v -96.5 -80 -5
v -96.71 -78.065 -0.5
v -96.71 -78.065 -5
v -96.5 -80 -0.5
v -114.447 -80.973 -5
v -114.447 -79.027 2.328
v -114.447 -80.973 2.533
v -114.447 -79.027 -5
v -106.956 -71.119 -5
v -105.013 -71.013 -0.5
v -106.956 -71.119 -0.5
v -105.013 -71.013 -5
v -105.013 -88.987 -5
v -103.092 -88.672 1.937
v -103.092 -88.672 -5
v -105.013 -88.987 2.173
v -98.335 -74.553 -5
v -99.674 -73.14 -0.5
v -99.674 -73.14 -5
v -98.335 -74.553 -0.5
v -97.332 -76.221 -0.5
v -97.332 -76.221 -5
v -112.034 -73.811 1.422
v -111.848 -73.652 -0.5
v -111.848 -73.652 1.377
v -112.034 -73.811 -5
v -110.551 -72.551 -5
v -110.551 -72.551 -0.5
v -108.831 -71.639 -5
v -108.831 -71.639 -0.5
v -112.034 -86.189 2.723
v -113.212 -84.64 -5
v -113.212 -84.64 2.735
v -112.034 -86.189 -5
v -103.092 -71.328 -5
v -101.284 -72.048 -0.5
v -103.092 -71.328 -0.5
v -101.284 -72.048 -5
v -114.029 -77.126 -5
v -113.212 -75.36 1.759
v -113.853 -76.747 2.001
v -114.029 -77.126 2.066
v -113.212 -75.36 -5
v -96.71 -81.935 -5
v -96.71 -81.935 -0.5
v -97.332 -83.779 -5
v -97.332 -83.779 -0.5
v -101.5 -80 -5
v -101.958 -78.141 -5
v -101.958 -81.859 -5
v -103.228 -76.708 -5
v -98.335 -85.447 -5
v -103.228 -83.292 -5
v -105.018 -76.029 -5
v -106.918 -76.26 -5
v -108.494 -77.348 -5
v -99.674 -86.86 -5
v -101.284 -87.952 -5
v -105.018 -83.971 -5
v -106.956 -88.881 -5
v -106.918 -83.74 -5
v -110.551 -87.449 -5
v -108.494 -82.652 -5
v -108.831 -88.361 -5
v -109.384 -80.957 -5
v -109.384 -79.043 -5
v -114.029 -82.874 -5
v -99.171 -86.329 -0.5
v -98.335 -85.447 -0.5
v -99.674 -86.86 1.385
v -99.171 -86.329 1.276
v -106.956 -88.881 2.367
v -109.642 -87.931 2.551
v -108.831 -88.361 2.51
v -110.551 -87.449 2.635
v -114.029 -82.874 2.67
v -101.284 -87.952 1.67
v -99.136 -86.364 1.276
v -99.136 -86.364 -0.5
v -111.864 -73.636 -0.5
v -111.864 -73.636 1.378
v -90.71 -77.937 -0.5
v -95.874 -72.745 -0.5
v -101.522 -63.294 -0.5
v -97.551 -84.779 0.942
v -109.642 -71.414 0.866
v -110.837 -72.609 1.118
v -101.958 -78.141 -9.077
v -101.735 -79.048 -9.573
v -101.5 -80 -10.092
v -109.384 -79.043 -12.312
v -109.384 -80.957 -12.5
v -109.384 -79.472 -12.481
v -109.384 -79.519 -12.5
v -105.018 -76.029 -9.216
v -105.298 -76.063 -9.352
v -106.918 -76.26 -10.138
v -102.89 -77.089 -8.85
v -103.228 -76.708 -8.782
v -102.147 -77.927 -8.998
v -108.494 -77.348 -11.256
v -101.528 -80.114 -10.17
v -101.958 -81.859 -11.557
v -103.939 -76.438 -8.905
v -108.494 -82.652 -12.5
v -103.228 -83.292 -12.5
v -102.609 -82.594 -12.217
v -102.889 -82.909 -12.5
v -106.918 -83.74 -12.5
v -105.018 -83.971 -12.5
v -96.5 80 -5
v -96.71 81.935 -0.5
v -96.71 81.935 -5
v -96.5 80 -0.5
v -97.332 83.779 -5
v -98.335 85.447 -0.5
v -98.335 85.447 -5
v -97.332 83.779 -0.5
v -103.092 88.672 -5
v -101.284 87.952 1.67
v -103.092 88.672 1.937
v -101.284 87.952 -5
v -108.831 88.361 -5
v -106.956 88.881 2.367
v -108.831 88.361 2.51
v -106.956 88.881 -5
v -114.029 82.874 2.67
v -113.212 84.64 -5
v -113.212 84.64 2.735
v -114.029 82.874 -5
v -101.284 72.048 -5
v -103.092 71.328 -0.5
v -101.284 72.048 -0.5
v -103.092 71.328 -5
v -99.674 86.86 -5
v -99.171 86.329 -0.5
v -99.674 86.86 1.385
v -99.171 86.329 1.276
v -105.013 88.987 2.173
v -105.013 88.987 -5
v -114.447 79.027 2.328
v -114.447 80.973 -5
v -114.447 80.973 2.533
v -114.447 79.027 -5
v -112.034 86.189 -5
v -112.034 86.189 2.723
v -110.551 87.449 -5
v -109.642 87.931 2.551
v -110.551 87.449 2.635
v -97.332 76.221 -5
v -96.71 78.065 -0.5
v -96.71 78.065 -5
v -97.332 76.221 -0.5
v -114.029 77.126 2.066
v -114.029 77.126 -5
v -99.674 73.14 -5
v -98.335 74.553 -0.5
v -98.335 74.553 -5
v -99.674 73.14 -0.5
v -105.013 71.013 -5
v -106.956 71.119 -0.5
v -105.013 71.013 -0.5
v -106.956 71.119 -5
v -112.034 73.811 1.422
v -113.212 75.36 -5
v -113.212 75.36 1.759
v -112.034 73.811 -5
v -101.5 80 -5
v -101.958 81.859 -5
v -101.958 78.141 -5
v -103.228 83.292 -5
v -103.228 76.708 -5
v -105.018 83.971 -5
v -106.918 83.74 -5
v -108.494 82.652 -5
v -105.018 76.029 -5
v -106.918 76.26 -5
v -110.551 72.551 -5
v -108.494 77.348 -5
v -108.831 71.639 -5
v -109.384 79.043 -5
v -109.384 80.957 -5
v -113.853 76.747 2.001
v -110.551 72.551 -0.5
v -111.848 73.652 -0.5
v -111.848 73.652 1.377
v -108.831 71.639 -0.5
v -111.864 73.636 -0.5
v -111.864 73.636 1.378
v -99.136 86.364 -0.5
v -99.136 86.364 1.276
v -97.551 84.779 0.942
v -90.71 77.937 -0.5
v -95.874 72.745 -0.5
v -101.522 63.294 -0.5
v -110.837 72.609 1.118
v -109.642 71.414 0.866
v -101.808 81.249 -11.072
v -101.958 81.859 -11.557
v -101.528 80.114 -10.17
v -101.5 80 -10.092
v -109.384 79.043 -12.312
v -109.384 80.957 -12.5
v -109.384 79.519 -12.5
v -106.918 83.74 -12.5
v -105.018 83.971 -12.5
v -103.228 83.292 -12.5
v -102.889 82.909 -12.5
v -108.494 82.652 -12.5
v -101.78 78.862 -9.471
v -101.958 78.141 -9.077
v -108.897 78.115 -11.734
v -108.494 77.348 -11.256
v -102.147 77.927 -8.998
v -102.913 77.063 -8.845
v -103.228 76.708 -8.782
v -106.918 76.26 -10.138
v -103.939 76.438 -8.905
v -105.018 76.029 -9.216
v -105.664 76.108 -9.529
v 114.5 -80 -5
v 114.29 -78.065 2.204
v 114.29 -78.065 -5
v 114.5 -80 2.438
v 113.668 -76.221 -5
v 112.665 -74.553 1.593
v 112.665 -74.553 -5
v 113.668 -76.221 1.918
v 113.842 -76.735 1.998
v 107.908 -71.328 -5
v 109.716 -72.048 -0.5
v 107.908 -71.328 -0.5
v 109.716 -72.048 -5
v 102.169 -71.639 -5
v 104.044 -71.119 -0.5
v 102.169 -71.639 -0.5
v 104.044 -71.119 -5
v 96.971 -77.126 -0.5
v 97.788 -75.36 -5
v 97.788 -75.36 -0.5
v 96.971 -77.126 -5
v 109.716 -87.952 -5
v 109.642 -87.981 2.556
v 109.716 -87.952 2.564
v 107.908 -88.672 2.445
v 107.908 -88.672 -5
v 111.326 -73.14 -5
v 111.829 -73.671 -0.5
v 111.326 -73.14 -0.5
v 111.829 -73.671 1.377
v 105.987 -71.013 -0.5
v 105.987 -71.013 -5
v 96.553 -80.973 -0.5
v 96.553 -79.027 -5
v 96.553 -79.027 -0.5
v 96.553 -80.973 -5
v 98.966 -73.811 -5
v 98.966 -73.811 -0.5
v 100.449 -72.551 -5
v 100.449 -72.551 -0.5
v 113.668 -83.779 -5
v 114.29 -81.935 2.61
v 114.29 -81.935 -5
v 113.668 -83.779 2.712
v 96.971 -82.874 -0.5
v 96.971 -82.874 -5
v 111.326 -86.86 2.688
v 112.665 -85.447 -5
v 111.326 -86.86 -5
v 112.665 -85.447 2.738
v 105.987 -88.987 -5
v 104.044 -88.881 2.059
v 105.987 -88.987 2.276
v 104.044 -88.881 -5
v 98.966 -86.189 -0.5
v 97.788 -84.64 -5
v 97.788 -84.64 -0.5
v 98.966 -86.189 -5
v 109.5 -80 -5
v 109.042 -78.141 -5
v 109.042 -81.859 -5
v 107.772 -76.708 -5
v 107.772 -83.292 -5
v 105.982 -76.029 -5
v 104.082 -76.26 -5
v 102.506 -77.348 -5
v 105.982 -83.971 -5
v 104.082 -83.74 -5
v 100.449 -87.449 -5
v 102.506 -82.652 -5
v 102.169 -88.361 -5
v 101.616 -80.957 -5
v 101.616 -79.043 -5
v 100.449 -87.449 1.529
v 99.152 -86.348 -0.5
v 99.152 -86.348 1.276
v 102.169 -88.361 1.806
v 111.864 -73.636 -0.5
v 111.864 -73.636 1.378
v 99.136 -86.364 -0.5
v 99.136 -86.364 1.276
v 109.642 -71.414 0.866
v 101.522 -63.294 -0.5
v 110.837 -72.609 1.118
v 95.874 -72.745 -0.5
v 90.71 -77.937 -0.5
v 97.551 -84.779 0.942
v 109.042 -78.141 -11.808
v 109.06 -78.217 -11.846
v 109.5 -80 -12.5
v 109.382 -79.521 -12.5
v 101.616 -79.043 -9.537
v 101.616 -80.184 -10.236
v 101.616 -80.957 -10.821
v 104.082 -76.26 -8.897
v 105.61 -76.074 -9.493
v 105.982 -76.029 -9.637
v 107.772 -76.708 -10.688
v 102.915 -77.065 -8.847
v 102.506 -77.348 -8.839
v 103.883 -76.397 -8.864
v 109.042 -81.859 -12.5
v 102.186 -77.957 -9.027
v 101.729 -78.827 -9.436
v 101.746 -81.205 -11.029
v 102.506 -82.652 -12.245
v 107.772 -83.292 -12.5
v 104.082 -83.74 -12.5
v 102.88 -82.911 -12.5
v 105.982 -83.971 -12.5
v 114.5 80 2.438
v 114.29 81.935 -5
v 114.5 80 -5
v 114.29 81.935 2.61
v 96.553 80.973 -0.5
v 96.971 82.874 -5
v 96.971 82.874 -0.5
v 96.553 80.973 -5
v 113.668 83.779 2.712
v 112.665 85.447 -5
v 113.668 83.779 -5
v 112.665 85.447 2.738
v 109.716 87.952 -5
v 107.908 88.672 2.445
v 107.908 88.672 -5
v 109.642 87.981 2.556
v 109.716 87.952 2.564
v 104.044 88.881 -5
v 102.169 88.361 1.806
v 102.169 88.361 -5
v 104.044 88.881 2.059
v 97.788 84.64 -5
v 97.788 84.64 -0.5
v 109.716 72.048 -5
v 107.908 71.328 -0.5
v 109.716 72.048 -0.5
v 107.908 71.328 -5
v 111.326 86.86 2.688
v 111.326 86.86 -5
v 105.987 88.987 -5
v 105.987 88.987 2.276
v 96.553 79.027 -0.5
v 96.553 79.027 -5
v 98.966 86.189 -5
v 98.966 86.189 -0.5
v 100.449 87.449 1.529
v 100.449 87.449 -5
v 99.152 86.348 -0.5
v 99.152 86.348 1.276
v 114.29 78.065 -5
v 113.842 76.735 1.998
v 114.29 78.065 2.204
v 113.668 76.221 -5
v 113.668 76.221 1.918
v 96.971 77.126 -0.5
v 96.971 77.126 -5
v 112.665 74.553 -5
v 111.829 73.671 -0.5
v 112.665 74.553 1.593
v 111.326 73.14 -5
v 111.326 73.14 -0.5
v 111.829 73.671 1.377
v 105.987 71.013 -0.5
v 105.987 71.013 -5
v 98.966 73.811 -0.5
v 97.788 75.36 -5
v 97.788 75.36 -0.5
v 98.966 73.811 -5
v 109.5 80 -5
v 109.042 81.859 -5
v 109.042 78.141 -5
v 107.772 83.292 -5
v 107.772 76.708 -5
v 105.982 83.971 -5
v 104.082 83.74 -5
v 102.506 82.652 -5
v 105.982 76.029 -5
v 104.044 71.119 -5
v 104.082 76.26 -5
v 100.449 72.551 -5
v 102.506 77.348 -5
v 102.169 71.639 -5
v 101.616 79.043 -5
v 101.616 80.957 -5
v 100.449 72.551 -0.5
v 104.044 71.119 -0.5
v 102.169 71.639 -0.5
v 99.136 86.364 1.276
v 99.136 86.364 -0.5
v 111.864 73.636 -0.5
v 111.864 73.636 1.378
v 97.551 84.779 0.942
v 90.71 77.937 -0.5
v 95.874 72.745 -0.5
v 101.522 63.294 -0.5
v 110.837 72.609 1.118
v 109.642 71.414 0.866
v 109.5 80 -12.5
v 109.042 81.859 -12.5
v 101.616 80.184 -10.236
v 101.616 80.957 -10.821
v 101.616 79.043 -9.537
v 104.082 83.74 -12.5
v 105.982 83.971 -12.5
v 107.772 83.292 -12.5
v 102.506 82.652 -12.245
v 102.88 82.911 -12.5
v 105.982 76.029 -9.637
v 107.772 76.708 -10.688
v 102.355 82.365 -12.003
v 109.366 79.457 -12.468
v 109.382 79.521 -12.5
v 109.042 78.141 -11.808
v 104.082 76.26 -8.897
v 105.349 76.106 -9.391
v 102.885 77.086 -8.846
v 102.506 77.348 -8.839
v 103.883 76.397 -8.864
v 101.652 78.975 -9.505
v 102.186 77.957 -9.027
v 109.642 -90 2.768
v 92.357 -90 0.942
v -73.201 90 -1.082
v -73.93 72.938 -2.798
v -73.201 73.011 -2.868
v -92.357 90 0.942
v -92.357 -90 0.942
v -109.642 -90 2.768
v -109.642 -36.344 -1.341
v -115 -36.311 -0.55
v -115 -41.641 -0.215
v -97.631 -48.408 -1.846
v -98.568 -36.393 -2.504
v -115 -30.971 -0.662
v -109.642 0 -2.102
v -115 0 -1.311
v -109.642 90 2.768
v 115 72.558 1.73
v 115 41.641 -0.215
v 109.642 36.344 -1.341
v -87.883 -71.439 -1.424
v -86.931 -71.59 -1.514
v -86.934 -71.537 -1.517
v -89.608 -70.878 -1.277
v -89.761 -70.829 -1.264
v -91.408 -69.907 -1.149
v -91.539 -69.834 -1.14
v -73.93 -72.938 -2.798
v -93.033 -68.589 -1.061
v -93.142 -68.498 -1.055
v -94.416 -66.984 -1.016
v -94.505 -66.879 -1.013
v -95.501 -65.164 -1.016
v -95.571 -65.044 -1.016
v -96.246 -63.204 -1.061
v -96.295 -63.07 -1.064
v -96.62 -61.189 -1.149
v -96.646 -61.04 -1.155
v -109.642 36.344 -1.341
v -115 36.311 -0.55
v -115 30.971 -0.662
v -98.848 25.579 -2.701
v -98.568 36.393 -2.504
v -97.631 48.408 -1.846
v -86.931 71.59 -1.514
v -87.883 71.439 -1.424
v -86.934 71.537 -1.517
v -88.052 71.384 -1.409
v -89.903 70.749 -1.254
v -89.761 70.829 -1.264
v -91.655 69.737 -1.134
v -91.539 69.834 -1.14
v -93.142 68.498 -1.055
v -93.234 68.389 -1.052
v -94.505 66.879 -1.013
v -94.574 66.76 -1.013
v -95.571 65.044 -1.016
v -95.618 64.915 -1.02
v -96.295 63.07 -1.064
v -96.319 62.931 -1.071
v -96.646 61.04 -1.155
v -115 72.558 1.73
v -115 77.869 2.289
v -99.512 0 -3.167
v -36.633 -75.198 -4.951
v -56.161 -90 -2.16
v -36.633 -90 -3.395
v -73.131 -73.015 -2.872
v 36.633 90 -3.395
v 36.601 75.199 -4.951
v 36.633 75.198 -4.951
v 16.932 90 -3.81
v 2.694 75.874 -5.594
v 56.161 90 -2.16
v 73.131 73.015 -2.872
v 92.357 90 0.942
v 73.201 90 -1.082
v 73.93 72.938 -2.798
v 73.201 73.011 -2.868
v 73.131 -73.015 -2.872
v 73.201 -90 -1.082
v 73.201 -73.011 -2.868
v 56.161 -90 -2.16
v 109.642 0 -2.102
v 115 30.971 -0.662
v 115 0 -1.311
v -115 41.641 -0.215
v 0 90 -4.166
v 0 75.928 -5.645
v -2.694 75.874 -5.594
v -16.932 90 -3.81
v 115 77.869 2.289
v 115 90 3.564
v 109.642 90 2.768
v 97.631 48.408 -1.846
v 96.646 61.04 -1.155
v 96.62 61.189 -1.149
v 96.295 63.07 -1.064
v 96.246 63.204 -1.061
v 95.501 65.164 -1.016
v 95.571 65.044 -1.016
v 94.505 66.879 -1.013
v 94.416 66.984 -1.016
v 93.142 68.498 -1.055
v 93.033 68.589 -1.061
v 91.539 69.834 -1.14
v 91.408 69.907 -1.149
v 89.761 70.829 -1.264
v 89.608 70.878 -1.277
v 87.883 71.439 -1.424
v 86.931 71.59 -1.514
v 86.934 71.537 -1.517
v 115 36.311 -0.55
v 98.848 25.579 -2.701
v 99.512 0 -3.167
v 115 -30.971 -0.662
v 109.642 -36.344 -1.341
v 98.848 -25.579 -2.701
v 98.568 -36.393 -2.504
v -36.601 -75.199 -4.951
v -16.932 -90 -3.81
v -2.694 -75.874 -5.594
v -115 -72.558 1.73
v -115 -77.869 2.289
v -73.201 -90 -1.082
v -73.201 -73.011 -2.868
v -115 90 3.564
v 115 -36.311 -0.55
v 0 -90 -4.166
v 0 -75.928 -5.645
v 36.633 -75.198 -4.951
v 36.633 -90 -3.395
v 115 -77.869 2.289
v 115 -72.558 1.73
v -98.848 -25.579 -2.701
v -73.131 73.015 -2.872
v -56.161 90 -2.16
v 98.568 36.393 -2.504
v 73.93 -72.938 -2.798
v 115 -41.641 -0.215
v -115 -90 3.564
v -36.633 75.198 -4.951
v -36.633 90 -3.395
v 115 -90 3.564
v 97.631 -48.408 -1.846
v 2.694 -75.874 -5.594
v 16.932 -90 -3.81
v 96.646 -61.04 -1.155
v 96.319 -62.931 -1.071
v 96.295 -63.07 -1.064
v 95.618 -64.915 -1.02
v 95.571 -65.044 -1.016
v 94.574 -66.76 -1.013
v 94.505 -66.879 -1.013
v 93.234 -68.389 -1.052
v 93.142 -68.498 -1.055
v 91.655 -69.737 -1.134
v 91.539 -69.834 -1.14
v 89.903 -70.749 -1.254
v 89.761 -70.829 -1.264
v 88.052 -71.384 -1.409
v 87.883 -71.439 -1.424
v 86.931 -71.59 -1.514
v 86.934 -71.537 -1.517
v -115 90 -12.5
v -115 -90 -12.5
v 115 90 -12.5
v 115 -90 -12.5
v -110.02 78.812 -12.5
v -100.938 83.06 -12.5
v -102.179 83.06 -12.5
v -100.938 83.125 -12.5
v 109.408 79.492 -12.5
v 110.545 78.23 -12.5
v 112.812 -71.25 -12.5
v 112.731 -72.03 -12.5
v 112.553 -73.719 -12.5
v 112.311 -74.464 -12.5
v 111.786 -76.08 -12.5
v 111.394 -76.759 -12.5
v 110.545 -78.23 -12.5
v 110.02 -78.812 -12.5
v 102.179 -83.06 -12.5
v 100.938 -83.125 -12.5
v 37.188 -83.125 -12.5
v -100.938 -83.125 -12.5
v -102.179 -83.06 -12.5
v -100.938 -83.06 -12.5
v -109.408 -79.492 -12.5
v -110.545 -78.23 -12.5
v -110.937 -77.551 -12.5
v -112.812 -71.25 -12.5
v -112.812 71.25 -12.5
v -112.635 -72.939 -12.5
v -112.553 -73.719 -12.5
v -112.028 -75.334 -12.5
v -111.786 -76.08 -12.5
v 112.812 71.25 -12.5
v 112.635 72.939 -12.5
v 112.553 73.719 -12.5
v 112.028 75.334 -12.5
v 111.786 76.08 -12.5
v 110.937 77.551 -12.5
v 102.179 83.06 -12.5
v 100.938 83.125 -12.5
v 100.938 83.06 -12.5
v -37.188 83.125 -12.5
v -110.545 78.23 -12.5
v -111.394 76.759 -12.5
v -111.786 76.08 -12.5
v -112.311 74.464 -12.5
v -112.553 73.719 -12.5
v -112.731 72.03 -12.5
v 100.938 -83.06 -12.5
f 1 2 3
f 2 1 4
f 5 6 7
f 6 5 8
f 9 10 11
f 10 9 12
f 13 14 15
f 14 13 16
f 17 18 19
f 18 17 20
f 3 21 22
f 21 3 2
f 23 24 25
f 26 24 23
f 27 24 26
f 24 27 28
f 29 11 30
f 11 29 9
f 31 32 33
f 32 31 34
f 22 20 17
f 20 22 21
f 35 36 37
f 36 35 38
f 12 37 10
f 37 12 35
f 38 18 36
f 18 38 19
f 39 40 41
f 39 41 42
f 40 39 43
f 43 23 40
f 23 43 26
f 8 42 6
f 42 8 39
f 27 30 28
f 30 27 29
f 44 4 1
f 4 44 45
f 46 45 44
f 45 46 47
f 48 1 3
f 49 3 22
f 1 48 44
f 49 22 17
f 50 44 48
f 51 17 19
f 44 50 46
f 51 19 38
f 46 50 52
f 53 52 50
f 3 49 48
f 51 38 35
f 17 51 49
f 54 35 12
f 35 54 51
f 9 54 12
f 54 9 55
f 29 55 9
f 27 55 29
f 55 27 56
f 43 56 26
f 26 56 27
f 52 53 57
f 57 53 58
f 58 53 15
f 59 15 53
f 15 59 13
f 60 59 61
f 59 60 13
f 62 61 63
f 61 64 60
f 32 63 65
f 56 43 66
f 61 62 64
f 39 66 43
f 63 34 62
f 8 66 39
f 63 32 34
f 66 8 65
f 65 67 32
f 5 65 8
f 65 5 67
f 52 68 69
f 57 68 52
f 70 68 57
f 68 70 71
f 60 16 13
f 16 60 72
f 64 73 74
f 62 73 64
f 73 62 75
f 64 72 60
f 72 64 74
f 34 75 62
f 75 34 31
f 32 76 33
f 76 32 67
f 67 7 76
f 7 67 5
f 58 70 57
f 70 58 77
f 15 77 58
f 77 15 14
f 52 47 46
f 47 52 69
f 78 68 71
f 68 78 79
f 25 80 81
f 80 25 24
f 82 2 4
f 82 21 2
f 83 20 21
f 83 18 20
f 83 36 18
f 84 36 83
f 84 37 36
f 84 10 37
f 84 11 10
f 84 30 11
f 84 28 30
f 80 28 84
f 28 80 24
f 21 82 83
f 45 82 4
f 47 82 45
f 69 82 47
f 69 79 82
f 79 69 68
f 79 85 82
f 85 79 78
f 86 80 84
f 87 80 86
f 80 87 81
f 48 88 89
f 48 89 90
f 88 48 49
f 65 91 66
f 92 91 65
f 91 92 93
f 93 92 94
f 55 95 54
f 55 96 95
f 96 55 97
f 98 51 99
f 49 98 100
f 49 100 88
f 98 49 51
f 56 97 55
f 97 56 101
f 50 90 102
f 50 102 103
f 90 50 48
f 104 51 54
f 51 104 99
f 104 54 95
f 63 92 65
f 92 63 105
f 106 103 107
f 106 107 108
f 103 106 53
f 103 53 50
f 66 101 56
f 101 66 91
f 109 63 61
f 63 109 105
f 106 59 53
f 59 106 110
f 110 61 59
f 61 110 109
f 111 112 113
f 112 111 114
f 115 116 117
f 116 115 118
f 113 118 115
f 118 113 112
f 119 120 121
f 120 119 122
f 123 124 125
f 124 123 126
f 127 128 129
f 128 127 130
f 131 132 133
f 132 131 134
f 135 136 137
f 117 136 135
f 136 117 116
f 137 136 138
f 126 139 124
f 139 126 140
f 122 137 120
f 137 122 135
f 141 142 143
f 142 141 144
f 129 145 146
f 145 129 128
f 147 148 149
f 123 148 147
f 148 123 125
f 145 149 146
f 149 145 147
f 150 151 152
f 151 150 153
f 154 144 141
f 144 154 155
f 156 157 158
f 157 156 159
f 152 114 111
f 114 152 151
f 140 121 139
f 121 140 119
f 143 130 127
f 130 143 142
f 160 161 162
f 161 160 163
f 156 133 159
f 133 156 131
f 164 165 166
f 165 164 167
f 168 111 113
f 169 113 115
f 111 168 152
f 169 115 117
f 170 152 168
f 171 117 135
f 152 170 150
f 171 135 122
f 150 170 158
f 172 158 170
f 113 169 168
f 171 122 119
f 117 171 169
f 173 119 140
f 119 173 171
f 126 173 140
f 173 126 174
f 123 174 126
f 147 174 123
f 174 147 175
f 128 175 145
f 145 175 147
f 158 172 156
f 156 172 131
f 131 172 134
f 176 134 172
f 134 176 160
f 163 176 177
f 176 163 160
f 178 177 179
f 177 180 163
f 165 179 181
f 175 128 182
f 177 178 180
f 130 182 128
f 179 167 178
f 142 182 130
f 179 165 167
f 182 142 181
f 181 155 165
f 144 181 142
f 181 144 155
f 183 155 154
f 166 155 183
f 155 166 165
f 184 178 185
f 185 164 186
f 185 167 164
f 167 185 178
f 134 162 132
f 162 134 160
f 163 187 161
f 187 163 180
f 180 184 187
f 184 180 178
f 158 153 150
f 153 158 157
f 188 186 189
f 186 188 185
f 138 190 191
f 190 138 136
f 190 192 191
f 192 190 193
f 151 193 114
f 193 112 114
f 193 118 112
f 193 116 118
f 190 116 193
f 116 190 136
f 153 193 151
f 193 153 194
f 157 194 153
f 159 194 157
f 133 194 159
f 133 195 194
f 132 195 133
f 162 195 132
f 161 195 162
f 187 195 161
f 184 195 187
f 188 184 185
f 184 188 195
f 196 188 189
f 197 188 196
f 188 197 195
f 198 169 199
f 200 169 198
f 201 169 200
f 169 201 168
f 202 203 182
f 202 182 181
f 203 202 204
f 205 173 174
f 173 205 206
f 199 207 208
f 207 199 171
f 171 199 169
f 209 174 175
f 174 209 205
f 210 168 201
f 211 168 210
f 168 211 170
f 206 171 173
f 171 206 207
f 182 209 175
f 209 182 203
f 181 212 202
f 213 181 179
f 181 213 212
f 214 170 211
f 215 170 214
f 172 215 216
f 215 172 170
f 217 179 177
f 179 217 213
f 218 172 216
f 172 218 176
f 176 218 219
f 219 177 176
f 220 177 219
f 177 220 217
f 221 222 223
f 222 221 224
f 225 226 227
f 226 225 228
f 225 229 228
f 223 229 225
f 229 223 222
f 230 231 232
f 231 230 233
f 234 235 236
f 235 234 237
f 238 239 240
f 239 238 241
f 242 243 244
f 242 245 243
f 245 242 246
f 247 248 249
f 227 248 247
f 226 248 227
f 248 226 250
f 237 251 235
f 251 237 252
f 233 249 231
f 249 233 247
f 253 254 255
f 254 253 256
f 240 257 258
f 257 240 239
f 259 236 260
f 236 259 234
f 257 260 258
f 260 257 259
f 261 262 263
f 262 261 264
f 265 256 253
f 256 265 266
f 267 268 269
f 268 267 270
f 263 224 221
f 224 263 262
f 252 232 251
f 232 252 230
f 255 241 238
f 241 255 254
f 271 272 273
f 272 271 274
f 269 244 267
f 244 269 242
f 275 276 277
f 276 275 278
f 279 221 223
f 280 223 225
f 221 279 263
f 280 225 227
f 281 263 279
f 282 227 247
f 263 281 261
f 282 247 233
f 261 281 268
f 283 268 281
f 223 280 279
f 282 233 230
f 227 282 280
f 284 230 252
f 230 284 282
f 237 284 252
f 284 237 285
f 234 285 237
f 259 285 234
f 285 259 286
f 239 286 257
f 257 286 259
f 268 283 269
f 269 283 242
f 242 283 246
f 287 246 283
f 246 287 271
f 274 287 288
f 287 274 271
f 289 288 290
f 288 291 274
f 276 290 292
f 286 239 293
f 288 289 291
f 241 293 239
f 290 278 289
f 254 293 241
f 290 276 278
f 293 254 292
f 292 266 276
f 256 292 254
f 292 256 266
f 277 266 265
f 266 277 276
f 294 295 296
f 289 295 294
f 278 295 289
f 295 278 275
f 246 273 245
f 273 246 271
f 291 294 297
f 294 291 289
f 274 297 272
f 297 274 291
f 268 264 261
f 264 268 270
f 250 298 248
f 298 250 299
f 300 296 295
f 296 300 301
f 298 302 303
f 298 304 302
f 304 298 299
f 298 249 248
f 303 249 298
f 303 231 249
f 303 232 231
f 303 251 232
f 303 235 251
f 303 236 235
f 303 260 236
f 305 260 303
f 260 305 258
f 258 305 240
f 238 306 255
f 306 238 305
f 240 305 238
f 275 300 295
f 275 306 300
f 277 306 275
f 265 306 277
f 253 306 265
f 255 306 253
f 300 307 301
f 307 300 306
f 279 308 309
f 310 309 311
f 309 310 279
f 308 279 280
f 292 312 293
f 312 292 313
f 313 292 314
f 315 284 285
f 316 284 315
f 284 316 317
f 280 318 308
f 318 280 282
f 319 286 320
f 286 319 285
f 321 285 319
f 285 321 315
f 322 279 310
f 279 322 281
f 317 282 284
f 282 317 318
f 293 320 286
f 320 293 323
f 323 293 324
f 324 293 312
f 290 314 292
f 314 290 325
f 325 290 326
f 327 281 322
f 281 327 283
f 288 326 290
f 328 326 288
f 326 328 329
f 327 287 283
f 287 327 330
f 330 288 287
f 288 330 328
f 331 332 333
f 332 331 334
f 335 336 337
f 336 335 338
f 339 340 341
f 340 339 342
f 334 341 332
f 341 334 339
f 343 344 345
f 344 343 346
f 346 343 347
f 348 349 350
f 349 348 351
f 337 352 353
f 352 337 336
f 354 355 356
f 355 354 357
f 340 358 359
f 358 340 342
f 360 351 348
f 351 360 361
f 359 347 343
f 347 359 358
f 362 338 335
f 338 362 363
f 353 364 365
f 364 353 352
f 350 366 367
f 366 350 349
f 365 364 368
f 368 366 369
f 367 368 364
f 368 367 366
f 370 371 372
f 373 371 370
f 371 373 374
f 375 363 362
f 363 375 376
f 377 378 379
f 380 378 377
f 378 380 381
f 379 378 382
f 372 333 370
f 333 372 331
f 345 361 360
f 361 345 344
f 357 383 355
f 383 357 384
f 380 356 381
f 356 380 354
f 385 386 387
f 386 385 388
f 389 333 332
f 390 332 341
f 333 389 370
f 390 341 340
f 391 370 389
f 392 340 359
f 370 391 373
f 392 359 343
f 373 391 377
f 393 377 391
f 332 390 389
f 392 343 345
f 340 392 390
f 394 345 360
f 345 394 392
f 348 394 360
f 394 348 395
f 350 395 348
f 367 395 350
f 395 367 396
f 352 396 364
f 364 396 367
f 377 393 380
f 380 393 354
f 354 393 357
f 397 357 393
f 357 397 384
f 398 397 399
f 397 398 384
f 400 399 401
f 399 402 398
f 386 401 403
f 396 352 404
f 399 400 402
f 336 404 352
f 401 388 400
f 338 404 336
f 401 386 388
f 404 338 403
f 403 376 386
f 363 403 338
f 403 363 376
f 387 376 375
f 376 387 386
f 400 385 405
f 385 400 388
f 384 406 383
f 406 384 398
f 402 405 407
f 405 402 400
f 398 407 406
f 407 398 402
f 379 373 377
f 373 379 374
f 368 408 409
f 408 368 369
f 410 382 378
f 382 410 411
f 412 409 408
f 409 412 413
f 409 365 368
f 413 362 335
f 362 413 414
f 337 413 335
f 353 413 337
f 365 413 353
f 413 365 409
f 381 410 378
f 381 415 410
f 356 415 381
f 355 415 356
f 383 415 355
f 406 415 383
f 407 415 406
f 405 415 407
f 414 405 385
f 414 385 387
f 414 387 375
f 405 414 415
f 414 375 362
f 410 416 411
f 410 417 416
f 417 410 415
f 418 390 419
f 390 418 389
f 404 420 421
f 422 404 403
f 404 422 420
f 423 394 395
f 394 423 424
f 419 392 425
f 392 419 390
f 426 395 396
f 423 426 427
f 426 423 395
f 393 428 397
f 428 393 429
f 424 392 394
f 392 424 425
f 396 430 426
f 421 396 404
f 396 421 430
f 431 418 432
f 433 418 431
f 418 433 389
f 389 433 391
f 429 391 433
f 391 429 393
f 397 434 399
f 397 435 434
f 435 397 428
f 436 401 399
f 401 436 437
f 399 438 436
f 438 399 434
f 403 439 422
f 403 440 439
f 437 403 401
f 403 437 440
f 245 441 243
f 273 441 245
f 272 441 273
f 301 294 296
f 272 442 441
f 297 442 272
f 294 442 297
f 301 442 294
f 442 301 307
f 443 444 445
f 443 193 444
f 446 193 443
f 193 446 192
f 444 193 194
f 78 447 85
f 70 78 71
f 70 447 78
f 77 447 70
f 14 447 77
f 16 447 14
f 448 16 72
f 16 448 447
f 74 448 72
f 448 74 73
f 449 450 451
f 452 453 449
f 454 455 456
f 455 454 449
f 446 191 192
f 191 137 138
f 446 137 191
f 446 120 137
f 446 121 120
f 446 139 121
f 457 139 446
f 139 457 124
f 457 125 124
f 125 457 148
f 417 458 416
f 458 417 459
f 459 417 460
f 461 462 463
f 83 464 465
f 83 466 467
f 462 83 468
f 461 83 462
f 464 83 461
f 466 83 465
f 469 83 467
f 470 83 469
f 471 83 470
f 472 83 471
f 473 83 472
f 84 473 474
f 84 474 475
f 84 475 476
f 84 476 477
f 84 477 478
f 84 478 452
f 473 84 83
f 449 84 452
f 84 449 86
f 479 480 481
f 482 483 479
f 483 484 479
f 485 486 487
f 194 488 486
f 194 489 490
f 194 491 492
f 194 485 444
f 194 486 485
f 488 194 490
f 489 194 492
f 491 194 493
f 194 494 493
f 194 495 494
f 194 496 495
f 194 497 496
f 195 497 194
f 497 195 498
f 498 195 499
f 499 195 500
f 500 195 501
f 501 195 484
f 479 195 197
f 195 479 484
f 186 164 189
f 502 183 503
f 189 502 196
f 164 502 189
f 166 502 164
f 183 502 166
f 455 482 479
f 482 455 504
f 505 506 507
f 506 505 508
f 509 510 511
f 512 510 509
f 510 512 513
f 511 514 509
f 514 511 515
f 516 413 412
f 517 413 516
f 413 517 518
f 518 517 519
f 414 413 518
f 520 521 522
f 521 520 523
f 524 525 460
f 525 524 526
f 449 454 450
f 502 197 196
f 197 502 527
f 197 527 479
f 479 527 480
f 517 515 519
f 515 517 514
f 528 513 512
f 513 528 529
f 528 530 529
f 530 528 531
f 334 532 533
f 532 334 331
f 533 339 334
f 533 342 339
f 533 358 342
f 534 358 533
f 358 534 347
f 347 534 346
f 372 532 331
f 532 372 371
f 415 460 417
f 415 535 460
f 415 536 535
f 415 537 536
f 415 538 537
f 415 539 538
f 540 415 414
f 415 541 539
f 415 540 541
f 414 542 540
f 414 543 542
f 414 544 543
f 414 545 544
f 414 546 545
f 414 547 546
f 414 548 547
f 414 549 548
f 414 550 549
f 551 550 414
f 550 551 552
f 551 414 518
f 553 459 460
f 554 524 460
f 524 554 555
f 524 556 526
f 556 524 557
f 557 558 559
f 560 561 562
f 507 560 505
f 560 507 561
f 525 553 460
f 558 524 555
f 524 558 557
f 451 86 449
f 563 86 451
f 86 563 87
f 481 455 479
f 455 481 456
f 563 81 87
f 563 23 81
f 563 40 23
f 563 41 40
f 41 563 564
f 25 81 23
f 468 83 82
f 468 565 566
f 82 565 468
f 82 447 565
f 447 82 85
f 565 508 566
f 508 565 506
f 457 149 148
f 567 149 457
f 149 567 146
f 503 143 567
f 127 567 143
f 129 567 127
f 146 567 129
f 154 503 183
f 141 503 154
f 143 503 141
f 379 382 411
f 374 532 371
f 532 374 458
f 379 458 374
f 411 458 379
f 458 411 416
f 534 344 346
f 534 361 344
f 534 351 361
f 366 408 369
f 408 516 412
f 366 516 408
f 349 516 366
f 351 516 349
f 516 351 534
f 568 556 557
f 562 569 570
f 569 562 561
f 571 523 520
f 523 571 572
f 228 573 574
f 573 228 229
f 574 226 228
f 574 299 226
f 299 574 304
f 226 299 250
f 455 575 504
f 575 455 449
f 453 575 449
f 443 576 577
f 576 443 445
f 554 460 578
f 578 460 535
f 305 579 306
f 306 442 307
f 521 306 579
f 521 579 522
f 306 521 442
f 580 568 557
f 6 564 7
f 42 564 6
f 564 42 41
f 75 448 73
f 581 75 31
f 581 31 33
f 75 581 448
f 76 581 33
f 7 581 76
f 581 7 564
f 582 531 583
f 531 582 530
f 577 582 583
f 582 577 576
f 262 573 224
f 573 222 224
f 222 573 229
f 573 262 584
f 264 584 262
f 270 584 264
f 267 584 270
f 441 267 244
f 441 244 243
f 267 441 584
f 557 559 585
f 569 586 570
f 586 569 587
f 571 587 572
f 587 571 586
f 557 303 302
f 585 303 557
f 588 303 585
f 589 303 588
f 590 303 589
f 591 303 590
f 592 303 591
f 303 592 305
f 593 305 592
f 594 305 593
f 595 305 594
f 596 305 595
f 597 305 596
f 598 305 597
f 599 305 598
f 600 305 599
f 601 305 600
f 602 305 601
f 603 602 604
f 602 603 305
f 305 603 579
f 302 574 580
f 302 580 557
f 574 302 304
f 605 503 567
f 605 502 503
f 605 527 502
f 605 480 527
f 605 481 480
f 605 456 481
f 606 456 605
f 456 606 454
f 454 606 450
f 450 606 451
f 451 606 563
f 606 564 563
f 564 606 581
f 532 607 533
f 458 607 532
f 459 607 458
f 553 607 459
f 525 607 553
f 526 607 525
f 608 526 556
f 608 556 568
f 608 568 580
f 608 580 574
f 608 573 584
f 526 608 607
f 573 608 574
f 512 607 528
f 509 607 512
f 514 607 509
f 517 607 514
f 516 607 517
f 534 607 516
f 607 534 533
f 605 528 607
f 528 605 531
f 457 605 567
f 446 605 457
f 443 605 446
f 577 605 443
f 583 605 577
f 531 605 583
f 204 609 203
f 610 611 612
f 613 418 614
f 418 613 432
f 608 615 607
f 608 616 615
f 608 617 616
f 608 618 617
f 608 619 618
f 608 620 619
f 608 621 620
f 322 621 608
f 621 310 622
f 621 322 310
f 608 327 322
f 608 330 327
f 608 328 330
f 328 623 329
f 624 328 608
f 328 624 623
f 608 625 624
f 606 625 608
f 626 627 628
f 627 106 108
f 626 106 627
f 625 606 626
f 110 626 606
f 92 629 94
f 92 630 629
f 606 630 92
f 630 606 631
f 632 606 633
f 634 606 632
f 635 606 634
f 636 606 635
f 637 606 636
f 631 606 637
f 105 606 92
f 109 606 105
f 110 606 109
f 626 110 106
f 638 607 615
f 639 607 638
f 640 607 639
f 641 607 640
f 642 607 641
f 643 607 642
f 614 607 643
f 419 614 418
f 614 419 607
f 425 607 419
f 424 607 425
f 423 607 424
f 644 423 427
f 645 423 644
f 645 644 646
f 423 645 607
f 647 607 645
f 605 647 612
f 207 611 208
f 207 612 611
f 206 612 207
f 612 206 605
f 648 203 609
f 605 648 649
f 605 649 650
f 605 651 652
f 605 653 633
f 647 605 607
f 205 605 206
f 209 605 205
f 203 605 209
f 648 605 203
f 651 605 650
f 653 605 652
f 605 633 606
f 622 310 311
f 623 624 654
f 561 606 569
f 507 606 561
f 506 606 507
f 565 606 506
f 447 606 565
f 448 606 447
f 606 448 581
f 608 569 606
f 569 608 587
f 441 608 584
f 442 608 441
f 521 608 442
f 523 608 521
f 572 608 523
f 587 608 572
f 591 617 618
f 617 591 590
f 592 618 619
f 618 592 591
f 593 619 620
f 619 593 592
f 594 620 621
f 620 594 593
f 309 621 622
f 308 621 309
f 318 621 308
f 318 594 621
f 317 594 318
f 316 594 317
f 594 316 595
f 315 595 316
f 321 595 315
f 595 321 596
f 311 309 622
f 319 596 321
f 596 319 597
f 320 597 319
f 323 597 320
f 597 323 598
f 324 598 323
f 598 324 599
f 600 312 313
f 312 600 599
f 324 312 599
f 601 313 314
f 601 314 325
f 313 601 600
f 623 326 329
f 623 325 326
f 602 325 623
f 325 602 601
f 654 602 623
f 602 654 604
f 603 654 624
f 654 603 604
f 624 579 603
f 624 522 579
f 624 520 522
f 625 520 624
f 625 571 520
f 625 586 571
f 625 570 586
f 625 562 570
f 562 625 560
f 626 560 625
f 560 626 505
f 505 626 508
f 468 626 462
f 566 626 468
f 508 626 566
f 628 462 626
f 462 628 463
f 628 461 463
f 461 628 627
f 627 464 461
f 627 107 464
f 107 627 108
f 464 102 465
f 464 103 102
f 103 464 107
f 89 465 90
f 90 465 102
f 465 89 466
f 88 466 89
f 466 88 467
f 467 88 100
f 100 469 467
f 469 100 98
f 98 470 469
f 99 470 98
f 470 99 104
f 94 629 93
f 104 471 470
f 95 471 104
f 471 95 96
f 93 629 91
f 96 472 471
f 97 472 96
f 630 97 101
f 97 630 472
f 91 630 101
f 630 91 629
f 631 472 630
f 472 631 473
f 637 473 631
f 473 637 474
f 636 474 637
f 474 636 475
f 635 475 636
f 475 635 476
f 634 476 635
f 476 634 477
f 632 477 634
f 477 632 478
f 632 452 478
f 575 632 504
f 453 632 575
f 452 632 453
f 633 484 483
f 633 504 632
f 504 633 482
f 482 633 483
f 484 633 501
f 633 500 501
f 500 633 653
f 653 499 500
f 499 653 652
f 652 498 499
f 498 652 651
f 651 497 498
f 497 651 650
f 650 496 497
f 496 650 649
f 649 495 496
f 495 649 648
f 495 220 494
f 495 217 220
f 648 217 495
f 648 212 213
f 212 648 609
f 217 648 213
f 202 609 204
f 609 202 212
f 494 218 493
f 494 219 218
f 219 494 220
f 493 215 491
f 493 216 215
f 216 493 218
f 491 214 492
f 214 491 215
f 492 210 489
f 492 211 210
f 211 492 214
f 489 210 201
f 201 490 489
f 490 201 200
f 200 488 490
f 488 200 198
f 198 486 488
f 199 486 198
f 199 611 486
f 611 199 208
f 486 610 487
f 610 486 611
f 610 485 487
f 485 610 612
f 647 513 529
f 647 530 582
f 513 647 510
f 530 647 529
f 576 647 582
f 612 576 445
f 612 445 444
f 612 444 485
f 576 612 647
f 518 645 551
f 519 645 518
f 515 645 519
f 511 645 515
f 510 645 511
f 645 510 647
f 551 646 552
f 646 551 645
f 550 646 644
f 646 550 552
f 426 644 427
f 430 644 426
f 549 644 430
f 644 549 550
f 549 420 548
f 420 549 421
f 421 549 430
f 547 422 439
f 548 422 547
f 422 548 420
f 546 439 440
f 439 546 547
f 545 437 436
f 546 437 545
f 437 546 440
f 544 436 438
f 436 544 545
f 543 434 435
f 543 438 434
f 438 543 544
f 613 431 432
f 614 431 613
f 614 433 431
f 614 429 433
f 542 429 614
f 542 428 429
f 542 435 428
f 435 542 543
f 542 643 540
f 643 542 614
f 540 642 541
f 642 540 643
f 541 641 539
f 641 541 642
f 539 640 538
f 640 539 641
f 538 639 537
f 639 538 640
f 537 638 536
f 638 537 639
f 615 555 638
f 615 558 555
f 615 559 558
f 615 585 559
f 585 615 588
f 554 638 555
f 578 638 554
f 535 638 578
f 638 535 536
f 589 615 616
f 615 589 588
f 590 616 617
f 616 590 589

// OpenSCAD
module washer(location = [0,0,0]) {
    ID = 7.8;
    OD = 16.5;
    thickness = 5;
    translate(location)
    color("green") difference() {
       cylinder(d=OD,h=thickness);
       translate([0,0,-0.1]) cylinder(d=ID,h=thickness+0.2); 
    }
}

module hole(location = [0,0,0]) {
    ID = 8;
    translate(location)
    color("purple",0.5) cylinder(d=ID,h=50,center=true);
}

module hole_stack(location = [0,0,0]) {
    translate(location) {
        washer([0,0,-5]);
        hole();
        washer([0,0,1.9]);
    }
}

module hole_cut(location = [0,0,0], rot=0) {
    OD=18;
    translate(location) {
        translate([0,0,-5]) cylinder(d=OD,h=31);
        rotate([0,0,1],a=45+rot) translate([0,-OD/2,-0.5]) cube([30,OD,20]);
        hole();
    }
}

horiz_hole_dist = 211;
vert_hole_dist = 160;
h2 = horiz_hole_dist/2; v2 = vert_hole_dist/2;

hole_locations = [ [-h2,-v2,0], [-h2,v2,0], [h2,-v2, 0], [h2, v2, 0] ];

module screen() {
    radius=874.8;
    slice_height=50;
    color("orange",0.2)
    translate() 
    intersection() {
        translate([0,0,radius])
        rotate(v=[0,1,0],a=90)
        sphere(r=radius,$fn=150);
        cube([240,190,slice_height*2],center=true);
    }
}

module frustrum() {
    w = 190;
    h = 140;
    chamfer = 10;
    rotate(v=[0,1,0],a=180)
    linear_extrude(height=20,scale=1.3)
    {
        translate([-w/2 + chamfer,-h/2 + chamfer,0]) circle(r=chamfer);
        translate([-w/2 + chamfer,h/2 - chamfer,0]) circle(r=chamfer);
        translate([w/2 - chamfer,-h/2 + chamfer,0]) circle(r=chamfer);
        translate([w/2 - chamfer,h/2 - chamfer,0]) circle(r=chamfer);
        square([w,h-2*chamfer],center=true);
        square([w-2*chamfer,h],center=true);
        //circle(r=100);
    }
}


//frustrum();


#difference()
{
    translate([0,0,-3])
        cube([230,180,19],center=true);
    hole_cut(hole_locations[0]);
    hole_cut(hole_locations[1],-90);
    hole_cut(hole_locations[2],90);
    hole_cut(hole_locations[3],180);
    translate([0,0,-9]) screen();
    frustrum();
}
